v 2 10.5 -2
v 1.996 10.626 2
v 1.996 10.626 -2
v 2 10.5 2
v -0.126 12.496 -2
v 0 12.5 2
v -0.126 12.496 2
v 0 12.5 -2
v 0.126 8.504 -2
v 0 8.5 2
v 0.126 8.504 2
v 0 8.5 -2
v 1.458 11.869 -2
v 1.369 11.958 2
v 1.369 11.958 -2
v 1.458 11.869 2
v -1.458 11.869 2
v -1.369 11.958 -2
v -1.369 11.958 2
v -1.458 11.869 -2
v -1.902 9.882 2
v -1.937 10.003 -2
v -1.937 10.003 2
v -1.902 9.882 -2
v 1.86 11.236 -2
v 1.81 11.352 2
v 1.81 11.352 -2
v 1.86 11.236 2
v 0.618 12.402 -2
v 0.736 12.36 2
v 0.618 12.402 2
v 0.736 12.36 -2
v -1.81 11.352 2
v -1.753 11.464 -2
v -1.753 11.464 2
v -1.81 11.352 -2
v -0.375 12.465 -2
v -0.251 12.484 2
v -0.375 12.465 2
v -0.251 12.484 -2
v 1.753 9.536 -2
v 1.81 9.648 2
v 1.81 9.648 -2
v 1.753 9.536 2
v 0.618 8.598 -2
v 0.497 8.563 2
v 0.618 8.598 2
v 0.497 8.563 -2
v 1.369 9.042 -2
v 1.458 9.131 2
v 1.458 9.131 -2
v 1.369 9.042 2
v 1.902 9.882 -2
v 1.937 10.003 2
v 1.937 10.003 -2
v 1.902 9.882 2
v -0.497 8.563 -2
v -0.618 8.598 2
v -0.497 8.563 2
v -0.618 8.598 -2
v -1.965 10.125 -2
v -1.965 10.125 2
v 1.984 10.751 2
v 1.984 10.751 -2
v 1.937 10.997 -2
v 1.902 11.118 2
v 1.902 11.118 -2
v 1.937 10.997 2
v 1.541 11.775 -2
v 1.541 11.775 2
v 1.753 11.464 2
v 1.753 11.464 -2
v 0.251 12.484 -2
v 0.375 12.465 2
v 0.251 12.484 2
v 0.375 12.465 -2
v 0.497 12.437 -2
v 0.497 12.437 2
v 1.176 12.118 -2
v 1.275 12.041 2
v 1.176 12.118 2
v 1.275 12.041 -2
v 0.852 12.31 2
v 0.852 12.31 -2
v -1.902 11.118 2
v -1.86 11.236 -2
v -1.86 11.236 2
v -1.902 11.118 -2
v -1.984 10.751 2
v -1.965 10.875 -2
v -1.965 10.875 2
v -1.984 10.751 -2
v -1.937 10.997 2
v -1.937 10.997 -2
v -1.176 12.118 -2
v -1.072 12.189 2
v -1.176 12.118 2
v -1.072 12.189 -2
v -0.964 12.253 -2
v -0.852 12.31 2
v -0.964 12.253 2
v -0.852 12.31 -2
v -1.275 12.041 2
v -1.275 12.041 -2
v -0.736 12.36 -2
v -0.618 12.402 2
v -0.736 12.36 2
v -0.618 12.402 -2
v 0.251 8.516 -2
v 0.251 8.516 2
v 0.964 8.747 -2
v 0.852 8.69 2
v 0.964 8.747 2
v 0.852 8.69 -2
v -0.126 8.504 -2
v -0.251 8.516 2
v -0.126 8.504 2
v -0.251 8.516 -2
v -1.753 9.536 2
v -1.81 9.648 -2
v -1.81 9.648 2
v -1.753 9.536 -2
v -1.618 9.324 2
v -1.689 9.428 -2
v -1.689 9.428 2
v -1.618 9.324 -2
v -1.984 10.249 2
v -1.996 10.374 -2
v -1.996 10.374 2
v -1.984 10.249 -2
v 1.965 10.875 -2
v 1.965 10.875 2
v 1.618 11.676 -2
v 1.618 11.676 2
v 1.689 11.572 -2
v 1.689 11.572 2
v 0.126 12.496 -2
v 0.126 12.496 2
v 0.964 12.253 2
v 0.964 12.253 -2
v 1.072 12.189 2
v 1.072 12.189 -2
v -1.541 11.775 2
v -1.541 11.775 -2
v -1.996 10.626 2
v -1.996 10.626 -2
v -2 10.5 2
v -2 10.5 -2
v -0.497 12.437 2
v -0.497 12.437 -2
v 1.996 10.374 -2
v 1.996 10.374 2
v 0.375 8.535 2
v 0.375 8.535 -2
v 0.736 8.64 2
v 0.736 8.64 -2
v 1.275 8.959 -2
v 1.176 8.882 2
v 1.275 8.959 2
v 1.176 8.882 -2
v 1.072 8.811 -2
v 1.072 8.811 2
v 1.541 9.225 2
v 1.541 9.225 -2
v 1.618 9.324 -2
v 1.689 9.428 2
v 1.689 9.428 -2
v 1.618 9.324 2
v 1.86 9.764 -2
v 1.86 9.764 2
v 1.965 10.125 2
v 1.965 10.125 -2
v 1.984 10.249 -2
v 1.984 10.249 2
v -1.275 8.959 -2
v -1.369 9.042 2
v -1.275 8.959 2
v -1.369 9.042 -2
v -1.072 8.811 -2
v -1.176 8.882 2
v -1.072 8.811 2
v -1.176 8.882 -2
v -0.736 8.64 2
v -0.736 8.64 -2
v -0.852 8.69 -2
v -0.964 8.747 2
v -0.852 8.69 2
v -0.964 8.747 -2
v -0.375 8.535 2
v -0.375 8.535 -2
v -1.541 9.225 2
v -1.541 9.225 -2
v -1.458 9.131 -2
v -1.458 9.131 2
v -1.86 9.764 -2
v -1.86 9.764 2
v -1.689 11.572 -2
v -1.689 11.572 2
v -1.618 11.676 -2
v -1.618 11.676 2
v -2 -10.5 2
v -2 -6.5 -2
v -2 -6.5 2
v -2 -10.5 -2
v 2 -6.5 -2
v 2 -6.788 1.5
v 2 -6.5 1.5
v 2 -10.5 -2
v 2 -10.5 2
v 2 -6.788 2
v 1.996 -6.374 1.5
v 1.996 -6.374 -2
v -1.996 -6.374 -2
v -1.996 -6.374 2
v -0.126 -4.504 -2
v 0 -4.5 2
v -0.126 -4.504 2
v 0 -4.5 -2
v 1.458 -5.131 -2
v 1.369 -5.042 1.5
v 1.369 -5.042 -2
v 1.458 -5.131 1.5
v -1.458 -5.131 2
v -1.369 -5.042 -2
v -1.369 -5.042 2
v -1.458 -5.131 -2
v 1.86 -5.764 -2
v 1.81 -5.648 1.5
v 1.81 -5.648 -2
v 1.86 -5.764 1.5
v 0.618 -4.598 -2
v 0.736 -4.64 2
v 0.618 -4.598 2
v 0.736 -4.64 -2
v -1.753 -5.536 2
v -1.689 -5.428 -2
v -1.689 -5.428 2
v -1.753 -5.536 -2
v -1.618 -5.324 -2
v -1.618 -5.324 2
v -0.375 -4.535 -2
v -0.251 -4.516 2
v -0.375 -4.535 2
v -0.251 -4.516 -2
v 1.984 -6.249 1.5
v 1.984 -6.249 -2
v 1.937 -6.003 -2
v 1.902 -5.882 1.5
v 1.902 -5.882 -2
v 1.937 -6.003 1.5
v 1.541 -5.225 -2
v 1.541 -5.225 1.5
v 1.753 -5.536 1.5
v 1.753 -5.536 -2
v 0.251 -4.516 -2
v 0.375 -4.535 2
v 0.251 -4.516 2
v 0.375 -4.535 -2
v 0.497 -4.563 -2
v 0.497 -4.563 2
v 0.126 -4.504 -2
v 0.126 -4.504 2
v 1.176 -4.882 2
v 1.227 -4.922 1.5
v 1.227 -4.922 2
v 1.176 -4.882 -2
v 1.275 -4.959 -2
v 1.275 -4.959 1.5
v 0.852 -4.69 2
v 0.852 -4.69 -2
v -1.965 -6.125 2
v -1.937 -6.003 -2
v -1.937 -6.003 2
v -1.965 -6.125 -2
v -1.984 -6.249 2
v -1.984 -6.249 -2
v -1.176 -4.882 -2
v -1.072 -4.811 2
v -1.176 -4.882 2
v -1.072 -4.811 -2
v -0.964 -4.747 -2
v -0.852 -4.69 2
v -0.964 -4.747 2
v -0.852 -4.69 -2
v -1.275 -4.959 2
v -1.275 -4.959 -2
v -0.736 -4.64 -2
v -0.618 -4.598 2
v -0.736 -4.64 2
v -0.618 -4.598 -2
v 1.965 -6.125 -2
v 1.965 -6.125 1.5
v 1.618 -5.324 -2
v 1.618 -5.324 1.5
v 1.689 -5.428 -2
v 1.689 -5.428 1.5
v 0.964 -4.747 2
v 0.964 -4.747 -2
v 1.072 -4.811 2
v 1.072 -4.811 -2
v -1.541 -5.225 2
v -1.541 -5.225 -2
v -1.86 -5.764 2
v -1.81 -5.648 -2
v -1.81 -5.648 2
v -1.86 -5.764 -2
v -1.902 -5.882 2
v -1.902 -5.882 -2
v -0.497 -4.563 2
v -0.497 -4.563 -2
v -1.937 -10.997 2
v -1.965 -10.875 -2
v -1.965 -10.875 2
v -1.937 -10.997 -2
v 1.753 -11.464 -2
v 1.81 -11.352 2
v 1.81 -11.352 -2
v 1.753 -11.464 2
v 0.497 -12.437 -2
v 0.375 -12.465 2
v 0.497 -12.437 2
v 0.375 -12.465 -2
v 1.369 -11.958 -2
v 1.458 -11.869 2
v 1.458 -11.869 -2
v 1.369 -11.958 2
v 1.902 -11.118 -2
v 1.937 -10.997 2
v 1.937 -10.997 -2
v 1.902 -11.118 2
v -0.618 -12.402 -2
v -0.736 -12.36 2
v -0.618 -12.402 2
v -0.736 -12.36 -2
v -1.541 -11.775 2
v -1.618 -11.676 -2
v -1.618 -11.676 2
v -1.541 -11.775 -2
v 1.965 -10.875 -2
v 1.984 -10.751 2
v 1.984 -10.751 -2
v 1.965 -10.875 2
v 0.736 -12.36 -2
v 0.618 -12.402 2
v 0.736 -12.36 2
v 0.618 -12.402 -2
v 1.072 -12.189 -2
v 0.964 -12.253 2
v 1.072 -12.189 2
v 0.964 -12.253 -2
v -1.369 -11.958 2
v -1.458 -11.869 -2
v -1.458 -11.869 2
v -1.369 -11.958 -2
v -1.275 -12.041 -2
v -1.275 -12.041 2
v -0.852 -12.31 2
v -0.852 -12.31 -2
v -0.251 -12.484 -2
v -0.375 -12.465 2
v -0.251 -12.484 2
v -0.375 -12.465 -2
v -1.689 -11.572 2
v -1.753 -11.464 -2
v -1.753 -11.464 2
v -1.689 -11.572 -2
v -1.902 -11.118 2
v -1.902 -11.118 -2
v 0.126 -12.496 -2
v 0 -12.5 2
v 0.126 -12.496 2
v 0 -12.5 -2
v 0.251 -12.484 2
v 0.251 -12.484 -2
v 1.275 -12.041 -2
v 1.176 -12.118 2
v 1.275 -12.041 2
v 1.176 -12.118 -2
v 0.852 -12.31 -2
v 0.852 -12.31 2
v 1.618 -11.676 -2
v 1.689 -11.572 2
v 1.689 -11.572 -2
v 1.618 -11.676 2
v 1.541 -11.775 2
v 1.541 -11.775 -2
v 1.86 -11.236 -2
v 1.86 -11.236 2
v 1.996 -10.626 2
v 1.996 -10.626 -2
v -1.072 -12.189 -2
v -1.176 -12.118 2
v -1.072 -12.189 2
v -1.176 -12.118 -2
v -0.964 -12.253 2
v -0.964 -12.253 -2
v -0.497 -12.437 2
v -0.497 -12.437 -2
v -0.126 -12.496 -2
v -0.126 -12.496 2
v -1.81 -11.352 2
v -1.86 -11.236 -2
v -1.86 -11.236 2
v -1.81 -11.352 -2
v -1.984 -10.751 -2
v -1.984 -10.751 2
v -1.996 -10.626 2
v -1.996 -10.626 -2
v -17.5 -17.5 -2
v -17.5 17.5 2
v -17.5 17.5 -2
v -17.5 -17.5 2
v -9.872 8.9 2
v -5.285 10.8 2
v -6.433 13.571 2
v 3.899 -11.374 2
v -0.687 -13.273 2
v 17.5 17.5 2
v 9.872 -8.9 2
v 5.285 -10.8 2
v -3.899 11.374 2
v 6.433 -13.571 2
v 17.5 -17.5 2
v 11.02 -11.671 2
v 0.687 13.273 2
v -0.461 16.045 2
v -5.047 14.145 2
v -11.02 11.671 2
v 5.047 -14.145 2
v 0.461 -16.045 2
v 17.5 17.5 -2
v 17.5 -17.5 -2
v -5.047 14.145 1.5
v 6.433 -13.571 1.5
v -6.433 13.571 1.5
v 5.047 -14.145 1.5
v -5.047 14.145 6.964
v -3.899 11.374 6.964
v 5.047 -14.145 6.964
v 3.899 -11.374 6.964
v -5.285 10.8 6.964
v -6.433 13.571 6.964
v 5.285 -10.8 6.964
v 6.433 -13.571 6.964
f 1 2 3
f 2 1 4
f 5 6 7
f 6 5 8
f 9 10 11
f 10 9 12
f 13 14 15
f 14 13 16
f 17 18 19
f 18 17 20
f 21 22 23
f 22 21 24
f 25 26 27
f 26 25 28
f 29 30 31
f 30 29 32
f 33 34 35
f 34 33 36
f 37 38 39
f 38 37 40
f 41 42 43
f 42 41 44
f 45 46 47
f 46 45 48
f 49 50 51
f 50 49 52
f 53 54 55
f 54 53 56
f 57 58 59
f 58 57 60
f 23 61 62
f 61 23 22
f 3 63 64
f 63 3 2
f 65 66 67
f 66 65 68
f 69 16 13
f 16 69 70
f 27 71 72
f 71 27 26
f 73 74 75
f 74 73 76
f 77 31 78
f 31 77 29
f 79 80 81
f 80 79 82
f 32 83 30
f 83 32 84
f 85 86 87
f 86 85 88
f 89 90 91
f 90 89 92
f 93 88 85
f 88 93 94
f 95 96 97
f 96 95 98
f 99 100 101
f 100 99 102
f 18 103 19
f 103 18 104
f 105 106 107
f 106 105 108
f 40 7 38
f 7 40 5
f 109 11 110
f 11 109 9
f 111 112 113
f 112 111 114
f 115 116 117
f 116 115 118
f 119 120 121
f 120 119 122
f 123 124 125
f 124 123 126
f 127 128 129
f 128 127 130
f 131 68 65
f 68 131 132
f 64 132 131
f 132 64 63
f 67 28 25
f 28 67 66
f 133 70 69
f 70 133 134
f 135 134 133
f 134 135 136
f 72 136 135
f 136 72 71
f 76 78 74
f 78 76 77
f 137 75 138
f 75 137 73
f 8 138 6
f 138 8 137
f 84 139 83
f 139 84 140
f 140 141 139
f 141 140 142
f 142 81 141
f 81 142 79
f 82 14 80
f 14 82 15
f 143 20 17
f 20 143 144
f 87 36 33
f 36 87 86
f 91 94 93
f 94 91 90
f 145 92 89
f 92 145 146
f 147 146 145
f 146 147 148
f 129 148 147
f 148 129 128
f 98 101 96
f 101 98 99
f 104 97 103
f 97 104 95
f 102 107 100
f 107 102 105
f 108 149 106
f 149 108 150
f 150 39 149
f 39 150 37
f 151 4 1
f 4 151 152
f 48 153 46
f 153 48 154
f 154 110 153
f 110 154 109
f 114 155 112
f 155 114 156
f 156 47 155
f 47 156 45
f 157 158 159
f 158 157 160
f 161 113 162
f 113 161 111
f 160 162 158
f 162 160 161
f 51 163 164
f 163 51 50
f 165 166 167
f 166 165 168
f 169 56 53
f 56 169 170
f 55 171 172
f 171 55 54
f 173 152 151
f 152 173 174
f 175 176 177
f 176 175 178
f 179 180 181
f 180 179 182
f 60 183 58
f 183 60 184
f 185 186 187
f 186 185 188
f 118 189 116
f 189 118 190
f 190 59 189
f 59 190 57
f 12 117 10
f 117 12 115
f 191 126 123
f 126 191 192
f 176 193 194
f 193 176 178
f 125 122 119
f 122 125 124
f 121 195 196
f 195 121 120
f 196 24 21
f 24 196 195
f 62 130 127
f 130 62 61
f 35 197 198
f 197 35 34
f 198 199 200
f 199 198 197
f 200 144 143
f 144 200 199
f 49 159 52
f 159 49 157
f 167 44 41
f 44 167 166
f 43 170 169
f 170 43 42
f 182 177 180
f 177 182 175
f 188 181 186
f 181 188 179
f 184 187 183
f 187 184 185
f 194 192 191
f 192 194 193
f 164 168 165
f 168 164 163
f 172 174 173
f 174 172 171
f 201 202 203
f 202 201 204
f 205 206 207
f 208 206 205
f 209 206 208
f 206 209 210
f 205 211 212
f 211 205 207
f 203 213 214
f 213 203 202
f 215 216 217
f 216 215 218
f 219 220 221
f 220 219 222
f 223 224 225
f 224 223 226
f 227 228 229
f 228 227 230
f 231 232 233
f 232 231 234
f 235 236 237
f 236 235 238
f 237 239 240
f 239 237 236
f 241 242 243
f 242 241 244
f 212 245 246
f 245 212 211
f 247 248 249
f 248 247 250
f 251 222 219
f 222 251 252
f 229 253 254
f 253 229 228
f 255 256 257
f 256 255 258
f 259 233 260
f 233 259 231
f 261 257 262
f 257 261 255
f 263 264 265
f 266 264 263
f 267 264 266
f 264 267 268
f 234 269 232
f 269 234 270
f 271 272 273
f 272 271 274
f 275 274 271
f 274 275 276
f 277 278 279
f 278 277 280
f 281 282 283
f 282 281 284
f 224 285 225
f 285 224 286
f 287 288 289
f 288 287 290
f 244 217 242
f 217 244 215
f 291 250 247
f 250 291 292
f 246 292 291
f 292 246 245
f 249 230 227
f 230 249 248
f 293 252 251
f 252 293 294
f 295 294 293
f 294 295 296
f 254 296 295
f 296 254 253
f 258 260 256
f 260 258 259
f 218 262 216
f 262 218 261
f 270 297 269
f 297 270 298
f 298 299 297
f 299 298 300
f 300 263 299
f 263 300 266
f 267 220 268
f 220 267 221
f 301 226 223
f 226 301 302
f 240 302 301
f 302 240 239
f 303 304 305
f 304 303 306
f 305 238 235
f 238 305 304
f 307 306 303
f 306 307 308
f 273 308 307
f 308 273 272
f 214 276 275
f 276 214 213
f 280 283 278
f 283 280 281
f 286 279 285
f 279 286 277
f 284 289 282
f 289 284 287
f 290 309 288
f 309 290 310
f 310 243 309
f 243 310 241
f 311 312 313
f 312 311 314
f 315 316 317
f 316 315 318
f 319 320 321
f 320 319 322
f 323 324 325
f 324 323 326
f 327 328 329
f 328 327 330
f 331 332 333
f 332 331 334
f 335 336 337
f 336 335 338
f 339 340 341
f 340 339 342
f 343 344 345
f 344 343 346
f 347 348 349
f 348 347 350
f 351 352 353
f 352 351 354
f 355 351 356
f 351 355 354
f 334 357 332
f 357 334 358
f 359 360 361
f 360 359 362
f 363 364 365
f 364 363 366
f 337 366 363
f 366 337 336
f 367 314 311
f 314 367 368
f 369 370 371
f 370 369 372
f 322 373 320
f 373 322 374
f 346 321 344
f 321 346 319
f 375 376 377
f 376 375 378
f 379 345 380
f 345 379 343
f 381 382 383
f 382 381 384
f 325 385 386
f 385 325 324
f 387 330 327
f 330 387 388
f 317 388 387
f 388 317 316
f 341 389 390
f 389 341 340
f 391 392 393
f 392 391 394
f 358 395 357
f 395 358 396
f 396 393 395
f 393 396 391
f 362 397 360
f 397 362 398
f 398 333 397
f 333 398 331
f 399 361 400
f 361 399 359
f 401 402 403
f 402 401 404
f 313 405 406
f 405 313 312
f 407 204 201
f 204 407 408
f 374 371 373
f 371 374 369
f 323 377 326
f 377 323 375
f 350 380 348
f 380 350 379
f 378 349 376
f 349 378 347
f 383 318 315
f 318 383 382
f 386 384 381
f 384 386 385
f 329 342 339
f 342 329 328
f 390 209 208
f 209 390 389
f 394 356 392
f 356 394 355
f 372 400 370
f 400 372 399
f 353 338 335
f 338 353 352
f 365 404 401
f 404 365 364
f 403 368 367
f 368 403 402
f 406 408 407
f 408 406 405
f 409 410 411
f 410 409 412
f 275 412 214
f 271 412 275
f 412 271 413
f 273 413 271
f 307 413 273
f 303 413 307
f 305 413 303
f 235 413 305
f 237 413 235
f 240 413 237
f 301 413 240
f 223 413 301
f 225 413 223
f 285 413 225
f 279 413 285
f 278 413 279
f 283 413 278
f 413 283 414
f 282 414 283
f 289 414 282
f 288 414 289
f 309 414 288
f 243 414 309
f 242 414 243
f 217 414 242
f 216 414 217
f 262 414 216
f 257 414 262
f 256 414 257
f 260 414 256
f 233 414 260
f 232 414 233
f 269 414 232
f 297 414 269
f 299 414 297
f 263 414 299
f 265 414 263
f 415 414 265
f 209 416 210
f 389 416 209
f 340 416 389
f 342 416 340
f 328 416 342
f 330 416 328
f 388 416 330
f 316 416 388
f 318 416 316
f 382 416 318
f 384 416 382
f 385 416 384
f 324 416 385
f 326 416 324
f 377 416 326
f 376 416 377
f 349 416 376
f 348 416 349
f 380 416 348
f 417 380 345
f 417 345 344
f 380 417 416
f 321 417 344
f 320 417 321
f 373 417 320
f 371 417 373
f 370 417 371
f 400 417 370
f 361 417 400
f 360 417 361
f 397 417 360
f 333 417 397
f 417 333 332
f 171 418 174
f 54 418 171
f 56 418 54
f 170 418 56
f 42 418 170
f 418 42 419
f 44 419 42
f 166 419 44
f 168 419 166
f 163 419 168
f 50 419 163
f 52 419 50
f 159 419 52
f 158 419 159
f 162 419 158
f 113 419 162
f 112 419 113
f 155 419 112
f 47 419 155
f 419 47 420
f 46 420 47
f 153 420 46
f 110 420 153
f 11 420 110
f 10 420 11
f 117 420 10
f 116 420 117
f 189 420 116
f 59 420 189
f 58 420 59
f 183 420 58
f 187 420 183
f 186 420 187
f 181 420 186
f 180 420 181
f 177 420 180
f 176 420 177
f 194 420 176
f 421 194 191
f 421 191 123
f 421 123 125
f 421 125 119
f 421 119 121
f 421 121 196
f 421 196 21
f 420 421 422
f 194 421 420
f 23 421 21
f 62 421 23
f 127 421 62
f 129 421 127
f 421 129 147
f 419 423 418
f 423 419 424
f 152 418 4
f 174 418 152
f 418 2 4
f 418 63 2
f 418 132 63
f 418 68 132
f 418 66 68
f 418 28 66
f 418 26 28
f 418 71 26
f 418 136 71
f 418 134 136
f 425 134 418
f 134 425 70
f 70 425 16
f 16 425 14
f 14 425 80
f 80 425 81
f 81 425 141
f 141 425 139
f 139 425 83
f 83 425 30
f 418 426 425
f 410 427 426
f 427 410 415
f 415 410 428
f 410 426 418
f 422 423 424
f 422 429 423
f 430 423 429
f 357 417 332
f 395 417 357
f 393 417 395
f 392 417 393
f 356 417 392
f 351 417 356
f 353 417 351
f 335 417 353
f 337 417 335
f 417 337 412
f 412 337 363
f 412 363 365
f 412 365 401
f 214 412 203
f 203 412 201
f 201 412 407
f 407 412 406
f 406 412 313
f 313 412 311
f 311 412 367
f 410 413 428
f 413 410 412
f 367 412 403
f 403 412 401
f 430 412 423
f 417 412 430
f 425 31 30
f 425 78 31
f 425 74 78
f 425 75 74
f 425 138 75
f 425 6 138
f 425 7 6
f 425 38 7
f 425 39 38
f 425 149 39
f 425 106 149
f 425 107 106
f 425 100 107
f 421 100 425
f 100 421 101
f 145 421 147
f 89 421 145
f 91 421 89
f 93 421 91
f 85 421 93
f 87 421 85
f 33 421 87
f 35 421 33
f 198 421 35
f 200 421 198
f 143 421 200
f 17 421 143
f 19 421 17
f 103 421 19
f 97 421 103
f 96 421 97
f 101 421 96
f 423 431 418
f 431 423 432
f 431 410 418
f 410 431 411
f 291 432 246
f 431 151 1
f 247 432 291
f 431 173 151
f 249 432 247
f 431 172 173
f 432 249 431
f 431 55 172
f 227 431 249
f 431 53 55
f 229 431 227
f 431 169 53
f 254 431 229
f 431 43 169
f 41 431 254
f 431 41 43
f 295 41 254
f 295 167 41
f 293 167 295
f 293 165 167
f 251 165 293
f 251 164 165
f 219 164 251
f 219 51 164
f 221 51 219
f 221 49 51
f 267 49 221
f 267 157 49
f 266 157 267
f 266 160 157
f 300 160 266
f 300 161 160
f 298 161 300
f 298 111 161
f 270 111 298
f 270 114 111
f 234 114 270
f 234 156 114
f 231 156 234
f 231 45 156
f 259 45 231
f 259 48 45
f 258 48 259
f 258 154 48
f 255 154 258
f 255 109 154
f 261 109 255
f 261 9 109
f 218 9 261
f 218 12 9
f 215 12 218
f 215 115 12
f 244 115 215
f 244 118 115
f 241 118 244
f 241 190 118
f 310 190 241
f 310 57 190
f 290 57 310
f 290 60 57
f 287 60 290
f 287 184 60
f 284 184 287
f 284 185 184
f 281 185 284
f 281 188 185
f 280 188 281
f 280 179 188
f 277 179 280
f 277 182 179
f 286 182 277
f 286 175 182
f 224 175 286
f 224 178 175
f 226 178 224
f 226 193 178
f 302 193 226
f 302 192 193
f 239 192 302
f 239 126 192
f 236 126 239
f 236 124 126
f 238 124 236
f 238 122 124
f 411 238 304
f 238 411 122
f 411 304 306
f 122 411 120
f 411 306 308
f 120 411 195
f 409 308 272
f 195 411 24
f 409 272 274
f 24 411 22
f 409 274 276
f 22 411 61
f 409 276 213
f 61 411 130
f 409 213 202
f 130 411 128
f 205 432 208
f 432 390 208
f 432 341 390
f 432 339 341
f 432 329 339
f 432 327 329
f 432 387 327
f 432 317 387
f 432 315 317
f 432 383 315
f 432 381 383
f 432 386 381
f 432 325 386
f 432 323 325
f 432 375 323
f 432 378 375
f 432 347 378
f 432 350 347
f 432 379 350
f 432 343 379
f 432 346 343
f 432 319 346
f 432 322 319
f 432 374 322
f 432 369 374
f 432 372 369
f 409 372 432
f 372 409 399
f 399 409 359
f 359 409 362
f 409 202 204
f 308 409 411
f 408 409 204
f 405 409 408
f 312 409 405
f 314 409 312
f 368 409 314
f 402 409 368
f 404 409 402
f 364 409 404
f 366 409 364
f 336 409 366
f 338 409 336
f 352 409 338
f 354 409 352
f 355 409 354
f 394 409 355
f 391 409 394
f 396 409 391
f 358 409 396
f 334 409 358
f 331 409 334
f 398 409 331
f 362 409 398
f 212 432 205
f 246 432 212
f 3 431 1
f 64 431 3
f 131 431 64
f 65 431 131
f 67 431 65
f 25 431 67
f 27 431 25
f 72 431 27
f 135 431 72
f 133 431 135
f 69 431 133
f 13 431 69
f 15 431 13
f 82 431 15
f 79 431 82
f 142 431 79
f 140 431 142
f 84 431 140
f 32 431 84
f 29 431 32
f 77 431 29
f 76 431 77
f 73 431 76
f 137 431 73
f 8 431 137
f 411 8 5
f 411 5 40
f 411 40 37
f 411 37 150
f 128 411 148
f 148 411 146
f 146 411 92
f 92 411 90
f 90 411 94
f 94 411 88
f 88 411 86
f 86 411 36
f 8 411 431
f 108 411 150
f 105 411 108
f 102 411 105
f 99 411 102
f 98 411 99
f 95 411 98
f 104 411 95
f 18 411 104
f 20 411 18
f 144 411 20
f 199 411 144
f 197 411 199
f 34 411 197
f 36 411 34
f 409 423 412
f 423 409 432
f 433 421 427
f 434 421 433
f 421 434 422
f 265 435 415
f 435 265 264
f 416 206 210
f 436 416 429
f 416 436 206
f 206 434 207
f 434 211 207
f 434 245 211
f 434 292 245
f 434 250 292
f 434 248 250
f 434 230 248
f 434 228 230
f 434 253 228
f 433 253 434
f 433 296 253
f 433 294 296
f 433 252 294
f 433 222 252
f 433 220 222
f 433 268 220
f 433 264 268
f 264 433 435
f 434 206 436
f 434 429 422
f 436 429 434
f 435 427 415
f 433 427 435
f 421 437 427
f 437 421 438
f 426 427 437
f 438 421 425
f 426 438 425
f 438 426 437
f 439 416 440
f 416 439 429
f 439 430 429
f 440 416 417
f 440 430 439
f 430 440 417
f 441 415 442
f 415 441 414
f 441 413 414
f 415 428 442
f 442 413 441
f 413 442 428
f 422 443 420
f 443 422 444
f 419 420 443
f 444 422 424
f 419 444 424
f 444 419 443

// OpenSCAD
union()
{

difference()
{
difference()
{
cube([35,35,4], center = true); //base del portamuestras

union()// unión de las piezas que forman los agujeros
{
translate([0,10.5,-5])
cylinder(r=2, h=10, $fn=100); //agujero pequeño
translate([0,-8.5,-0])
cube([4,4,10], center = true); //agujero grande
translate([0,-6.5,-5])
cylinder(r=2, h=10, $fn=100);
translate([0,-10.5,-5])
cylinder(r=2, h=10, $fn=100);
}
}
rotate([0,0,45/2])
translate([-0.75,-15,1.5])
cube([1.5,30,30], center = false); //ranura para el dispositivo
}

rotate([0,0,45/2])
union()
{
translate([3.25,13.5,0])//4 piezas que sujetan los substratos
difference()
{
translate([0,0,4.5])
cube([5,3,5], center = true);

translate([1,0,7])
rotate([0,45,0])
cube([10,4,5], center = true);
}
rotate([0,0,180])
translate([3.25,13.5,0])
difference()
{
translate([0,0,4.5])
cube([5,3,5], center = true);

translate([1,0,7])
rotate([0,45,0])
cube([10,4,5], center = true);
}
rotate([0,0,180])
translate([3.25,13.5,0])
rotate([0,0,180])
translate([6.5,0,0])
difference()
{
translate([0,0,4.5])
cube([5,3,5], center = true);

translate([1,0,7])
rotate([0,45,0])
cube([10,4,5], center = true);
}
translate([3.25,13.5,0])
rotate([0,0,180])
translate([6.5,0,0])
difference()
{
translate([0,0,4.5])
cube([5,3,5], center = true);

translate([1,0,7])
rotate([0,45,0])
cube([10,4,5], center = true);
}
}
}
